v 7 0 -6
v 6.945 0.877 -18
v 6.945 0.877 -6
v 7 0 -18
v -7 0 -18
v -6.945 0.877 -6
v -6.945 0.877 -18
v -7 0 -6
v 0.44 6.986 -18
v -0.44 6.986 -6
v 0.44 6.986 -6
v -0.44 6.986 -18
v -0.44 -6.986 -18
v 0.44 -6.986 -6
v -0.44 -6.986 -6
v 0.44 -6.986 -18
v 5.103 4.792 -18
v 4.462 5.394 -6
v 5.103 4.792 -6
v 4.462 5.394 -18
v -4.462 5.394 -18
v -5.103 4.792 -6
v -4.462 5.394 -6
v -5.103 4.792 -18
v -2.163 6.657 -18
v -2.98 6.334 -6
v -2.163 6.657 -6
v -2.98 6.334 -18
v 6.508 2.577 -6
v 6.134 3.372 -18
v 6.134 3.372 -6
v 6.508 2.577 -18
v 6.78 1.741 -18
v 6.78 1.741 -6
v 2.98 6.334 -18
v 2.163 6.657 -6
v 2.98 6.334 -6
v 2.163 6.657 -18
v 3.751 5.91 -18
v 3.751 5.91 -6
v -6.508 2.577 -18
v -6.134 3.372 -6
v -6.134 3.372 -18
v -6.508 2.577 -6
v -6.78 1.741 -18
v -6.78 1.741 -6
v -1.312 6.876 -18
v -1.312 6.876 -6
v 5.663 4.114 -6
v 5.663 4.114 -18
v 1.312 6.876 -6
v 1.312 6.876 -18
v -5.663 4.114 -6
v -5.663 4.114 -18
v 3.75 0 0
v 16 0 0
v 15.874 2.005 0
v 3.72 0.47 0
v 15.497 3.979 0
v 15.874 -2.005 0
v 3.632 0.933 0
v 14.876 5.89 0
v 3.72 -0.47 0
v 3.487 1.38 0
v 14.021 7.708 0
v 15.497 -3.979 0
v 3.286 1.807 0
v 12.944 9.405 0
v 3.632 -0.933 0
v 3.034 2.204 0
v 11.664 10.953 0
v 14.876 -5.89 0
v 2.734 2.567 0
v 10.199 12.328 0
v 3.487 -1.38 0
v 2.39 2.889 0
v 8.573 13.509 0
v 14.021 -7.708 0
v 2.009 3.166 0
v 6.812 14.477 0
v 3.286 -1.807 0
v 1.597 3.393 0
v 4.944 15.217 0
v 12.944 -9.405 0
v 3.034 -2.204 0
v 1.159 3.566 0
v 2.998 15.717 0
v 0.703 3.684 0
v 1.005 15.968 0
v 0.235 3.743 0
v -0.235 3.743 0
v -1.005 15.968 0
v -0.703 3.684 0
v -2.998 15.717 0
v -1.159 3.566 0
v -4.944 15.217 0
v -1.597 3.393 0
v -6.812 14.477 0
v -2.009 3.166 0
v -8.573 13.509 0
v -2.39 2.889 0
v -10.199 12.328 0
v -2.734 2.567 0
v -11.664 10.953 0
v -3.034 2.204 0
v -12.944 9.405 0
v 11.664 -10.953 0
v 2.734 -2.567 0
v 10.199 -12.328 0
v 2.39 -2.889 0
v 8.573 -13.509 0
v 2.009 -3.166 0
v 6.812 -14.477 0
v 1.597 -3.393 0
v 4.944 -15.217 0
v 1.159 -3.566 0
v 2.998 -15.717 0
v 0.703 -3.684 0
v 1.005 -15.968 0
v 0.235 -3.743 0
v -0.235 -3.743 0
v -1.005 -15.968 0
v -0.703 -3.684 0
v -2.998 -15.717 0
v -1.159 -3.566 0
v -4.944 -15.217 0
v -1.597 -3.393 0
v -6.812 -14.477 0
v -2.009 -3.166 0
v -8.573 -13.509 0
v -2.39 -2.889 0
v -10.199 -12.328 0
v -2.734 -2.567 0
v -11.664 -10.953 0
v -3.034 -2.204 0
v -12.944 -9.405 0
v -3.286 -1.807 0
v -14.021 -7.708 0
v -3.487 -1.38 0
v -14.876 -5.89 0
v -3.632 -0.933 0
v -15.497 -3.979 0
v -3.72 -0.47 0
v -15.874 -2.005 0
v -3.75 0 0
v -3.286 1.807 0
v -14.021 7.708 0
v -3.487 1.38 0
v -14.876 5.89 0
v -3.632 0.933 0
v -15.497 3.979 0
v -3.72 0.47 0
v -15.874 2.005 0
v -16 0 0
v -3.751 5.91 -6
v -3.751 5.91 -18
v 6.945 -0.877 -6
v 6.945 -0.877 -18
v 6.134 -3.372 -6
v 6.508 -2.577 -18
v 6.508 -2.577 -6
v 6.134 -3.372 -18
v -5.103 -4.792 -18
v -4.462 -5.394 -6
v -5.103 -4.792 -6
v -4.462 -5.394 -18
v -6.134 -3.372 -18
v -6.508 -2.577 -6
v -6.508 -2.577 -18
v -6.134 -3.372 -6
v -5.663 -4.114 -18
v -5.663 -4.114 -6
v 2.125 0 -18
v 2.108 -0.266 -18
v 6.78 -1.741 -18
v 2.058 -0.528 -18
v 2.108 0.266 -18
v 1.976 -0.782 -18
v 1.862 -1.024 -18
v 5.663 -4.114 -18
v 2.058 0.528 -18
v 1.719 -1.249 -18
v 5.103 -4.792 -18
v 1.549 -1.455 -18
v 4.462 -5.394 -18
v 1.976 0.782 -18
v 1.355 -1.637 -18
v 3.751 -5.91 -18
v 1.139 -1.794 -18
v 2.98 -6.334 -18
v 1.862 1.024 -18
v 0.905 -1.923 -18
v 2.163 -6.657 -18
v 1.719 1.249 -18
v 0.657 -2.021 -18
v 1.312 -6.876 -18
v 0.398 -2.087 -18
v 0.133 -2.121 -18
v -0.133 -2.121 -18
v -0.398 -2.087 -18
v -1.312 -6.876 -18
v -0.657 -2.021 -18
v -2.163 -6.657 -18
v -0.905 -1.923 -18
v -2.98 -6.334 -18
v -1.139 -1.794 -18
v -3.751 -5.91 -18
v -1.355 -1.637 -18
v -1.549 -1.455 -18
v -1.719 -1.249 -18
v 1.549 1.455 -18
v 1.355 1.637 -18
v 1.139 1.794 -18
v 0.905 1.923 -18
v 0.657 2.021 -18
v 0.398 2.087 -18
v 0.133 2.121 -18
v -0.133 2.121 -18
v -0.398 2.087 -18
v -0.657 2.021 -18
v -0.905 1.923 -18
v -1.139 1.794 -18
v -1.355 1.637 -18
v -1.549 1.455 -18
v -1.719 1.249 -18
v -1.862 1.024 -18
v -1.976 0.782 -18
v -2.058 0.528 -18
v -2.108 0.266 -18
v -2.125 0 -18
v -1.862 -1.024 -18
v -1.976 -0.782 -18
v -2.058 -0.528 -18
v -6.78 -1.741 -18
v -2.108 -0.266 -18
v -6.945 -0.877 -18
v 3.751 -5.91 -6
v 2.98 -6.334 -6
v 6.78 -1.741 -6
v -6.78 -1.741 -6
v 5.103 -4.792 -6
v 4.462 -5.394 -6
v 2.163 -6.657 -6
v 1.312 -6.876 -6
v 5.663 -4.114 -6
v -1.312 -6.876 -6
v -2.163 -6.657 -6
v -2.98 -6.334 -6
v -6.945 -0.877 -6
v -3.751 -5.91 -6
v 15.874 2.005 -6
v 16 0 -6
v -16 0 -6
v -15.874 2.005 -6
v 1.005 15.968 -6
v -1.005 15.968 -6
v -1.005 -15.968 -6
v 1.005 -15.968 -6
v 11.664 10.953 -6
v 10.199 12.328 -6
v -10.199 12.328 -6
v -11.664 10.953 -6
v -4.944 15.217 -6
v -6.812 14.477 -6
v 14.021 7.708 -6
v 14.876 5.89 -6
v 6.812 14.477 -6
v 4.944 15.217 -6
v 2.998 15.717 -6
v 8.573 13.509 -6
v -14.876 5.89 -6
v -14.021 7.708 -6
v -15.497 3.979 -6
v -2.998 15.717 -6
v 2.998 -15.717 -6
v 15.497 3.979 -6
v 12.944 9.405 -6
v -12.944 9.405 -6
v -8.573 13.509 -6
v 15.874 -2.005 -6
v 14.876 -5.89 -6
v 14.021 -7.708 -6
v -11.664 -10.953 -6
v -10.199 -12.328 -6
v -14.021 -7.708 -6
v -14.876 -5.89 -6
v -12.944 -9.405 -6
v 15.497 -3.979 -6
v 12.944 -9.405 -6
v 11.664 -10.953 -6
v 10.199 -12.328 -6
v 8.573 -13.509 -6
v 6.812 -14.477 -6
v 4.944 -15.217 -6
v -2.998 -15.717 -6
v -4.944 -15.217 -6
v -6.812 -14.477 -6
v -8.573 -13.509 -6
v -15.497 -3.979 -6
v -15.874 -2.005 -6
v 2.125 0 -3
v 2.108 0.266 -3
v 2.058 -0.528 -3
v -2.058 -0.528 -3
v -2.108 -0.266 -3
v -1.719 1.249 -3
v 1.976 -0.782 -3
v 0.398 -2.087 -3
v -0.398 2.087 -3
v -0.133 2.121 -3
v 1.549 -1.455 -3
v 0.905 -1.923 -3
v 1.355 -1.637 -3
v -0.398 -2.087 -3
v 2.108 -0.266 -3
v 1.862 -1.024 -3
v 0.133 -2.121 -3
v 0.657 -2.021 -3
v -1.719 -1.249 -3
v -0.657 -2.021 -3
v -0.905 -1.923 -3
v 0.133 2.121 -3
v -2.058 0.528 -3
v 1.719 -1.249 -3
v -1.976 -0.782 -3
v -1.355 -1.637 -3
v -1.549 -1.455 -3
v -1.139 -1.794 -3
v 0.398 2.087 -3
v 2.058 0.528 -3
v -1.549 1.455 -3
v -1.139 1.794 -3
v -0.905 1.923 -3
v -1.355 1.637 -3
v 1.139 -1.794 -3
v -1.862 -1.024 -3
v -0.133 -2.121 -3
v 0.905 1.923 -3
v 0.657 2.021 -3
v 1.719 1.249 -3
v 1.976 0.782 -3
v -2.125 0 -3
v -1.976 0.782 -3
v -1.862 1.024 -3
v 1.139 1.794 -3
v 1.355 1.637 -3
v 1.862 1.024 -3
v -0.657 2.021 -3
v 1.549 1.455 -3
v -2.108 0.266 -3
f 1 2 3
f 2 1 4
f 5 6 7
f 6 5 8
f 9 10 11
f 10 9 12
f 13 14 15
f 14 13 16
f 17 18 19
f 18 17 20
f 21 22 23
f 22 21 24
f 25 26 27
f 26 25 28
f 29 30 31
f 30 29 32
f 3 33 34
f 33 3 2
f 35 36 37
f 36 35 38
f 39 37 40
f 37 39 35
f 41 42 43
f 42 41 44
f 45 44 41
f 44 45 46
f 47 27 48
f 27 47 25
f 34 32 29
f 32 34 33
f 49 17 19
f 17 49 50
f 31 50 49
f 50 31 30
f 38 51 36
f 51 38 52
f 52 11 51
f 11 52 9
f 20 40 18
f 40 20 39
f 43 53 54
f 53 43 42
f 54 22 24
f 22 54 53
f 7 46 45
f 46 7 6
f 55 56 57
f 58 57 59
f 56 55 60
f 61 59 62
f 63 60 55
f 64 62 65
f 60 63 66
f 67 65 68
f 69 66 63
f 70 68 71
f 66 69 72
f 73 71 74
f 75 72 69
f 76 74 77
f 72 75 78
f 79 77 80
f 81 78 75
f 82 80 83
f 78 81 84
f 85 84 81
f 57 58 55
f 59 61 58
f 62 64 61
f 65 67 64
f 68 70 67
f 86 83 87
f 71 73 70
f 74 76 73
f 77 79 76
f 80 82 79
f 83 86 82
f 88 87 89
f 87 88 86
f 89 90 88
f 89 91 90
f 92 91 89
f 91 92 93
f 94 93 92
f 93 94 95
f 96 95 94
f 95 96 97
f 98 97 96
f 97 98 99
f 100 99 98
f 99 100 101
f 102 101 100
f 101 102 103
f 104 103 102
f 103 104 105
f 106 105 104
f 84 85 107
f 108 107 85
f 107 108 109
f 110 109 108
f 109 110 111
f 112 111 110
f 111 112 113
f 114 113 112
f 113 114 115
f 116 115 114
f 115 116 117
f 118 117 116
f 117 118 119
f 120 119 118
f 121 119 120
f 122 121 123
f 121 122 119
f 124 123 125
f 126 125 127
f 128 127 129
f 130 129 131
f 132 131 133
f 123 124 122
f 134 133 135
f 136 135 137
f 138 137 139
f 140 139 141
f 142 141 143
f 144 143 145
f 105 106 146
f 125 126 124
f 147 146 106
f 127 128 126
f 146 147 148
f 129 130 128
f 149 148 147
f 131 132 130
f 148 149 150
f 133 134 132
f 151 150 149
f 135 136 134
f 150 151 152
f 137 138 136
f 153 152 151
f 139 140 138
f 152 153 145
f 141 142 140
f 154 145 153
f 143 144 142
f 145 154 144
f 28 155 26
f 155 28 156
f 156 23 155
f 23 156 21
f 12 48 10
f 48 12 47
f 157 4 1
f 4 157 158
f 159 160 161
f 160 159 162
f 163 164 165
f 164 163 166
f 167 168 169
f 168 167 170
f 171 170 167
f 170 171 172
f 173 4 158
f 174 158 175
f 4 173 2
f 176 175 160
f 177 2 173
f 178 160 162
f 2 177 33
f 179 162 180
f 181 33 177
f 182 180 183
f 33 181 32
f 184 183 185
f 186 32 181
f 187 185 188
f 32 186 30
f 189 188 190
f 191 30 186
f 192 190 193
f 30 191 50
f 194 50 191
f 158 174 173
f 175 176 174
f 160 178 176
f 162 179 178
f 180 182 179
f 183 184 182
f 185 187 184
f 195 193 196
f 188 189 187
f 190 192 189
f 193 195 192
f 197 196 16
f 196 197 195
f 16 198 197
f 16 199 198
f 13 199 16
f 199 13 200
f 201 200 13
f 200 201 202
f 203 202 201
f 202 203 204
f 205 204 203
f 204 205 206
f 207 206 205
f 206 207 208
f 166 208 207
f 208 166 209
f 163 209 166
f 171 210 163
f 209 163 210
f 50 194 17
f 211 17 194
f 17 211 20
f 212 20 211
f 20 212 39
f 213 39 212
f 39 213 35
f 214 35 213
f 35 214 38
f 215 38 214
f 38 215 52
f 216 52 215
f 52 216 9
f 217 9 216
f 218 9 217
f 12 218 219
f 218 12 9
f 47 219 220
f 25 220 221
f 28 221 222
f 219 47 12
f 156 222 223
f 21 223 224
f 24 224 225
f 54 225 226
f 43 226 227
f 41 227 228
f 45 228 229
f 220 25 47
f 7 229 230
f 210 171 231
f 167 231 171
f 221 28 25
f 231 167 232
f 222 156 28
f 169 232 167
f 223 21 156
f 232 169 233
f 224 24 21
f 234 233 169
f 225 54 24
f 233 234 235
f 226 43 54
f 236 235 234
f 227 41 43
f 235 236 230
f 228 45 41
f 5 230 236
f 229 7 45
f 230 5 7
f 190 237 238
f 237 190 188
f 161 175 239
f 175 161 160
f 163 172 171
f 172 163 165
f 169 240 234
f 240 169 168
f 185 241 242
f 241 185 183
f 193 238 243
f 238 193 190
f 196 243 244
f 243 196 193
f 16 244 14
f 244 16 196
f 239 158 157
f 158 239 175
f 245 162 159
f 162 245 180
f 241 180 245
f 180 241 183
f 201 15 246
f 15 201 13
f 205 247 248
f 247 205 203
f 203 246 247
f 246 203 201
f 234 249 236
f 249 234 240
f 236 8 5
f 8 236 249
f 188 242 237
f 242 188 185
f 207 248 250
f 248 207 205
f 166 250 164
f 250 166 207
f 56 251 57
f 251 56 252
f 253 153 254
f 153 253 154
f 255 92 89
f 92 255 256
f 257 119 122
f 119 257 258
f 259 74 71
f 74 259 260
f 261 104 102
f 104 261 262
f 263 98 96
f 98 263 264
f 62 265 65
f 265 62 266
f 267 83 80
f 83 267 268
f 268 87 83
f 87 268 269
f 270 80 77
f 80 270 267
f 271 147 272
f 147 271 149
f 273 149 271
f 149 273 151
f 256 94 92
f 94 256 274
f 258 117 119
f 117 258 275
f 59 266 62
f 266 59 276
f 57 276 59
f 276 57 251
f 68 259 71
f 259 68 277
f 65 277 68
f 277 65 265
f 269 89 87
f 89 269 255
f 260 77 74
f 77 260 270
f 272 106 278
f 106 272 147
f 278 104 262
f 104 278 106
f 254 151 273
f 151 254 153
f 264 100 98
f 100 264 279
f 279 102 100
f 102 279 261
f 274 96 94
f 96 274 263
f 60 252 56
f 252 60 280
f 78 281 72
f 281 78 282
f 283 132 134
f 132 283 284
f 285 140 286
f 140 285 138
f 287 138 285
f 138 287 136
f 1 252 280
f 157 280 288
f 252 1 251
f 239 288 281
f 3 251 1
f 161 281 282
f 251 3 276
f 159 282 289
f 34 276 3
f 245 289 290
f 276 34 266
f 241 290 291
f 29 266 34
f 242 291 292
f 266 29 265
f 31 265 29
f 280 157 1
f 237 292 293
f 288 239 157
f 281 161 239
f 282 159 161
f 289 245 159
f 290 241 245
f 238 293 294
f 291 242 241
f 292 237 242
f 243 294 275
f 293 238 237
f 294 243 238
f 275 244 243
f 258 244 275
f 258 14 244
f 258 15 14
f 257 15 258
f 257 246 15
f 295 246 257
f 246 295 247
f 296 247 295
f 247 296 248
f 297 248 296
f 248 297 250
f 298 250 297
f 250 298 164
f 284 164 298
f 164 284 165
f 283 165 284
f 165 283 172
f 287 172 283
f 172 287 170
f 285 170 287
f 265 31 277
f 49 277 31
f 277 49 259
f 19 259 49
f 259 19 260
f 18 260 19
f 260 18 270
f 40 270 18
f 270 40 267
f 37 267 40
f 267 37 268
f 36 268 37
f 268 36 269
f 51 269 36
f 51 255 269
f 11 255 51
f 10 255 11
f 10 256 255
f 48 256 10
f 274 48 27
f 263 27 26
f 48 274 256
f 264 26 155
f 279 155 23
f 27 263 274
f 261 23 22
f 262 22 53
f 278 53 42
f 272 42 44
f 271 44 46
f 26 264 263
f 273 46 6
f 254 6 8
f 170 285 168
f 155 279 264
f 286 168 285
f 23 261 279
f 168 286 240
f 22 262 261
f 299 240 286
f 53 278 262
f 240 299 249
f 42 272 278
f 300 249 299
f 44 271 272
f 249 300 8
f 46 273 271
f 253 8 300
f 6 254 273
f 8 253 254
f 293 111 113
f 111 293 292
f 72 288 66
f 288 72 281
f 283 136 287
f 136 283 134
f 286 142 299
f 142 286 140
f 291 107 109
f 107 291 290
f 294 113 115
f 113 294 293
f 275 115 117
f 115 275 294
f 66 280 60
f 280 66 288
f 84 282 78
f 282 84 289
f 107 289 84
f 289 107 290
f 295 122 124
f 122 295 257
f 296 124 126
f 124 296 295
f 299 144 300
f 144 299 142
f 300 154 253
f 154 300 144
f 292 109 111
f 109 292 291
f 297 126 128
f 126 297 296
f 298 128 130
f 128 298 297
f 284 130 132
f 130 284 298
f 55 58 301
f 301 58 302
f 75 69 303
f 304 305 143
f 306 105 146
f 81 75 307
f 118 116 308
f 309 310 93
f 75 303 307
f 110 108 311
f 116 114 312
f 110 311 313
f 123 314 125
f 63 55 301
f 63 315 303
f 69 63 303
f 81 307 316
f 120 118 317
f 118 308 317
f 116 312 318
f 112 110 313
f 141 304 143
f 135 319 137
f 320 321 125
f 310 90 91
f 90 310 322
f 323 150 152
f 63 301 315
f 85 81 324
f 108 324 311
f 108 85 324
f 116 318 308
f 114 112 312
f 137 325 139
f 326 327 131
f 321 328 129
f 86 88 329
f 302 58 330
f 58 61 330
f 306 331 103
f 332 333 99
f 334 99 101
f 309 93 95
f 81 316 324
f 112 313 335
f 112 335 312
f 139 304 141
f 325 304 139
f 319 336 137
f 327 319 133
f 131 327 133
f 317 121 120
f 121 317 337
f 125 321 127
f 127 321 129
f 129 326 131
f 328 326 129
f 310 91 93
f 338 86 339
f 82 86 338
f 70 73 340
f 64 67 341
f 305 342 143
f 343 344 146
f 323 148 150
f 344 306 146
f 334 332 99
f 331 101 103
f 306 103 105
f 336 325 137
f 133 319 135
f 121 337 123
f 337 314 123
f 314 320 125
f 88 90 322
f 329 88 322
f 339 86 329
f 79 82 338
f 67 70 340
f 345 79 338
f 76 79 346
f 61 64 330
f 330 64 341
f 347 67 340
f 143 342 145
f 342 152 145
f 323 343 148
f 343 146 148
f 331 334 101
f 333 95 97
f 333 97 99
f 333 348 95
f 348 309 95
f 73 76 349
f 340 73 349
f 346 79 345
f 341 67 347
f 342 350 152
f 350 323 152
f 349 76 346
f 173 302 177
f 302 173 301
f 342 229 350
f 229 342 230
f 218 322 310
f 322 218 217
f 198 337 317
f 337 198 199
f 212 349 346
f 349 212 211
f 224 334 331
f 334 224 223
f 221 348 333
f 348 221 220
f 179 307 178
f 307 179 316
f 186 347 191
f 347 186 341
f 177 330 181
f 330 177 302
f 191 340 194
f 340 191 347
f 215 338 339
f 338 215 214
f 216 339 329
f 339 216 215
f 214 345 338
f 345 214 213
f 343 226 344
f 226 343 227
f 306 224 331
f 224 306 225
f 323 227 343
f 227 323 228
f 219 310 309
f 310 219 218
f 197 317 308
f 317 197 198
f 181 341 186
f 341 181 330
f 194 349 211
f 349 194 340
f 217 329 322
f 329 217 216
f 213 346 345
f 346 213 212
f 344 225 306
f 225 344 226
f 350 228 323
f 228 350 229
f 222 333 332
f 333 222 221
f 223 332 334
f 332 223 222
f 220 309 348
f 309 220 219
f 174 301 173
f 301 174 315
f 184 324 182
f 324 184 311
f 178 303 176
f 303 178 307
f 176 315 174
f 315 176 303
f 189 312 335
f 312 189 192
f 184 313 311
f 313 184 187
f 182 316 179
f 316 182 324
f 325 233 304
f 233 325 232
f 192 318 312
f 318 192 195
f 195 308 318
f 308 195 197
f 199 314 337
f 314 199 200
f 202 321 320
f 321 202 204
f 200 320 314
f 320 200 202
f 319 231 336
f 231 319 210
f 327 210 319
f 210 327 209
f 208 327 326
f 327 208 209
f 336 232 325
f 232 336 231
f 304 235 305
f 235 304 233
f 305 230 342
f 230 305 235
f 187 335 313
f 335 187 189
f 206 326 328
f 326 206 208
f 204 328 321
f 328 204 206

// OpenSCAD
$fn = 50;


difference() {
	union() {
		translate(v = [0, 0, -18.0000000000]) {
			cylinder(h = 18, r = 7.0000000000);
		}
		translate(v = [0, 0, -6.0000000000]) {
			cylinder(h = 6, r = 16.0000000000);
		}
	}
	union() {
		translate(v = [0, 0, 0]) {
			rotate(a = [0, 0, 0]) {
				difference() {
					union() {
						#translate(v = [0, 0, -18.0000000000]) {
							cylinder(h = 18, r = 2.0000000000);
						}
						#translate(v = [0, 0, -3]) {
							cylinder(h = 3, r1 = 2.1250000000, r2 = 3.7500000000);
						}
						#translate(v = [0, 0, -18.0000000000]) {
							cylinder(h = 18, r = 2.1250000000);
						}
						#translate(v = [0, 0, -18.0000000000]) {
							cylinder(h = 18, r = 2.0000000000);
						}
					}
					union();
				}
			}
		}
	}
}
